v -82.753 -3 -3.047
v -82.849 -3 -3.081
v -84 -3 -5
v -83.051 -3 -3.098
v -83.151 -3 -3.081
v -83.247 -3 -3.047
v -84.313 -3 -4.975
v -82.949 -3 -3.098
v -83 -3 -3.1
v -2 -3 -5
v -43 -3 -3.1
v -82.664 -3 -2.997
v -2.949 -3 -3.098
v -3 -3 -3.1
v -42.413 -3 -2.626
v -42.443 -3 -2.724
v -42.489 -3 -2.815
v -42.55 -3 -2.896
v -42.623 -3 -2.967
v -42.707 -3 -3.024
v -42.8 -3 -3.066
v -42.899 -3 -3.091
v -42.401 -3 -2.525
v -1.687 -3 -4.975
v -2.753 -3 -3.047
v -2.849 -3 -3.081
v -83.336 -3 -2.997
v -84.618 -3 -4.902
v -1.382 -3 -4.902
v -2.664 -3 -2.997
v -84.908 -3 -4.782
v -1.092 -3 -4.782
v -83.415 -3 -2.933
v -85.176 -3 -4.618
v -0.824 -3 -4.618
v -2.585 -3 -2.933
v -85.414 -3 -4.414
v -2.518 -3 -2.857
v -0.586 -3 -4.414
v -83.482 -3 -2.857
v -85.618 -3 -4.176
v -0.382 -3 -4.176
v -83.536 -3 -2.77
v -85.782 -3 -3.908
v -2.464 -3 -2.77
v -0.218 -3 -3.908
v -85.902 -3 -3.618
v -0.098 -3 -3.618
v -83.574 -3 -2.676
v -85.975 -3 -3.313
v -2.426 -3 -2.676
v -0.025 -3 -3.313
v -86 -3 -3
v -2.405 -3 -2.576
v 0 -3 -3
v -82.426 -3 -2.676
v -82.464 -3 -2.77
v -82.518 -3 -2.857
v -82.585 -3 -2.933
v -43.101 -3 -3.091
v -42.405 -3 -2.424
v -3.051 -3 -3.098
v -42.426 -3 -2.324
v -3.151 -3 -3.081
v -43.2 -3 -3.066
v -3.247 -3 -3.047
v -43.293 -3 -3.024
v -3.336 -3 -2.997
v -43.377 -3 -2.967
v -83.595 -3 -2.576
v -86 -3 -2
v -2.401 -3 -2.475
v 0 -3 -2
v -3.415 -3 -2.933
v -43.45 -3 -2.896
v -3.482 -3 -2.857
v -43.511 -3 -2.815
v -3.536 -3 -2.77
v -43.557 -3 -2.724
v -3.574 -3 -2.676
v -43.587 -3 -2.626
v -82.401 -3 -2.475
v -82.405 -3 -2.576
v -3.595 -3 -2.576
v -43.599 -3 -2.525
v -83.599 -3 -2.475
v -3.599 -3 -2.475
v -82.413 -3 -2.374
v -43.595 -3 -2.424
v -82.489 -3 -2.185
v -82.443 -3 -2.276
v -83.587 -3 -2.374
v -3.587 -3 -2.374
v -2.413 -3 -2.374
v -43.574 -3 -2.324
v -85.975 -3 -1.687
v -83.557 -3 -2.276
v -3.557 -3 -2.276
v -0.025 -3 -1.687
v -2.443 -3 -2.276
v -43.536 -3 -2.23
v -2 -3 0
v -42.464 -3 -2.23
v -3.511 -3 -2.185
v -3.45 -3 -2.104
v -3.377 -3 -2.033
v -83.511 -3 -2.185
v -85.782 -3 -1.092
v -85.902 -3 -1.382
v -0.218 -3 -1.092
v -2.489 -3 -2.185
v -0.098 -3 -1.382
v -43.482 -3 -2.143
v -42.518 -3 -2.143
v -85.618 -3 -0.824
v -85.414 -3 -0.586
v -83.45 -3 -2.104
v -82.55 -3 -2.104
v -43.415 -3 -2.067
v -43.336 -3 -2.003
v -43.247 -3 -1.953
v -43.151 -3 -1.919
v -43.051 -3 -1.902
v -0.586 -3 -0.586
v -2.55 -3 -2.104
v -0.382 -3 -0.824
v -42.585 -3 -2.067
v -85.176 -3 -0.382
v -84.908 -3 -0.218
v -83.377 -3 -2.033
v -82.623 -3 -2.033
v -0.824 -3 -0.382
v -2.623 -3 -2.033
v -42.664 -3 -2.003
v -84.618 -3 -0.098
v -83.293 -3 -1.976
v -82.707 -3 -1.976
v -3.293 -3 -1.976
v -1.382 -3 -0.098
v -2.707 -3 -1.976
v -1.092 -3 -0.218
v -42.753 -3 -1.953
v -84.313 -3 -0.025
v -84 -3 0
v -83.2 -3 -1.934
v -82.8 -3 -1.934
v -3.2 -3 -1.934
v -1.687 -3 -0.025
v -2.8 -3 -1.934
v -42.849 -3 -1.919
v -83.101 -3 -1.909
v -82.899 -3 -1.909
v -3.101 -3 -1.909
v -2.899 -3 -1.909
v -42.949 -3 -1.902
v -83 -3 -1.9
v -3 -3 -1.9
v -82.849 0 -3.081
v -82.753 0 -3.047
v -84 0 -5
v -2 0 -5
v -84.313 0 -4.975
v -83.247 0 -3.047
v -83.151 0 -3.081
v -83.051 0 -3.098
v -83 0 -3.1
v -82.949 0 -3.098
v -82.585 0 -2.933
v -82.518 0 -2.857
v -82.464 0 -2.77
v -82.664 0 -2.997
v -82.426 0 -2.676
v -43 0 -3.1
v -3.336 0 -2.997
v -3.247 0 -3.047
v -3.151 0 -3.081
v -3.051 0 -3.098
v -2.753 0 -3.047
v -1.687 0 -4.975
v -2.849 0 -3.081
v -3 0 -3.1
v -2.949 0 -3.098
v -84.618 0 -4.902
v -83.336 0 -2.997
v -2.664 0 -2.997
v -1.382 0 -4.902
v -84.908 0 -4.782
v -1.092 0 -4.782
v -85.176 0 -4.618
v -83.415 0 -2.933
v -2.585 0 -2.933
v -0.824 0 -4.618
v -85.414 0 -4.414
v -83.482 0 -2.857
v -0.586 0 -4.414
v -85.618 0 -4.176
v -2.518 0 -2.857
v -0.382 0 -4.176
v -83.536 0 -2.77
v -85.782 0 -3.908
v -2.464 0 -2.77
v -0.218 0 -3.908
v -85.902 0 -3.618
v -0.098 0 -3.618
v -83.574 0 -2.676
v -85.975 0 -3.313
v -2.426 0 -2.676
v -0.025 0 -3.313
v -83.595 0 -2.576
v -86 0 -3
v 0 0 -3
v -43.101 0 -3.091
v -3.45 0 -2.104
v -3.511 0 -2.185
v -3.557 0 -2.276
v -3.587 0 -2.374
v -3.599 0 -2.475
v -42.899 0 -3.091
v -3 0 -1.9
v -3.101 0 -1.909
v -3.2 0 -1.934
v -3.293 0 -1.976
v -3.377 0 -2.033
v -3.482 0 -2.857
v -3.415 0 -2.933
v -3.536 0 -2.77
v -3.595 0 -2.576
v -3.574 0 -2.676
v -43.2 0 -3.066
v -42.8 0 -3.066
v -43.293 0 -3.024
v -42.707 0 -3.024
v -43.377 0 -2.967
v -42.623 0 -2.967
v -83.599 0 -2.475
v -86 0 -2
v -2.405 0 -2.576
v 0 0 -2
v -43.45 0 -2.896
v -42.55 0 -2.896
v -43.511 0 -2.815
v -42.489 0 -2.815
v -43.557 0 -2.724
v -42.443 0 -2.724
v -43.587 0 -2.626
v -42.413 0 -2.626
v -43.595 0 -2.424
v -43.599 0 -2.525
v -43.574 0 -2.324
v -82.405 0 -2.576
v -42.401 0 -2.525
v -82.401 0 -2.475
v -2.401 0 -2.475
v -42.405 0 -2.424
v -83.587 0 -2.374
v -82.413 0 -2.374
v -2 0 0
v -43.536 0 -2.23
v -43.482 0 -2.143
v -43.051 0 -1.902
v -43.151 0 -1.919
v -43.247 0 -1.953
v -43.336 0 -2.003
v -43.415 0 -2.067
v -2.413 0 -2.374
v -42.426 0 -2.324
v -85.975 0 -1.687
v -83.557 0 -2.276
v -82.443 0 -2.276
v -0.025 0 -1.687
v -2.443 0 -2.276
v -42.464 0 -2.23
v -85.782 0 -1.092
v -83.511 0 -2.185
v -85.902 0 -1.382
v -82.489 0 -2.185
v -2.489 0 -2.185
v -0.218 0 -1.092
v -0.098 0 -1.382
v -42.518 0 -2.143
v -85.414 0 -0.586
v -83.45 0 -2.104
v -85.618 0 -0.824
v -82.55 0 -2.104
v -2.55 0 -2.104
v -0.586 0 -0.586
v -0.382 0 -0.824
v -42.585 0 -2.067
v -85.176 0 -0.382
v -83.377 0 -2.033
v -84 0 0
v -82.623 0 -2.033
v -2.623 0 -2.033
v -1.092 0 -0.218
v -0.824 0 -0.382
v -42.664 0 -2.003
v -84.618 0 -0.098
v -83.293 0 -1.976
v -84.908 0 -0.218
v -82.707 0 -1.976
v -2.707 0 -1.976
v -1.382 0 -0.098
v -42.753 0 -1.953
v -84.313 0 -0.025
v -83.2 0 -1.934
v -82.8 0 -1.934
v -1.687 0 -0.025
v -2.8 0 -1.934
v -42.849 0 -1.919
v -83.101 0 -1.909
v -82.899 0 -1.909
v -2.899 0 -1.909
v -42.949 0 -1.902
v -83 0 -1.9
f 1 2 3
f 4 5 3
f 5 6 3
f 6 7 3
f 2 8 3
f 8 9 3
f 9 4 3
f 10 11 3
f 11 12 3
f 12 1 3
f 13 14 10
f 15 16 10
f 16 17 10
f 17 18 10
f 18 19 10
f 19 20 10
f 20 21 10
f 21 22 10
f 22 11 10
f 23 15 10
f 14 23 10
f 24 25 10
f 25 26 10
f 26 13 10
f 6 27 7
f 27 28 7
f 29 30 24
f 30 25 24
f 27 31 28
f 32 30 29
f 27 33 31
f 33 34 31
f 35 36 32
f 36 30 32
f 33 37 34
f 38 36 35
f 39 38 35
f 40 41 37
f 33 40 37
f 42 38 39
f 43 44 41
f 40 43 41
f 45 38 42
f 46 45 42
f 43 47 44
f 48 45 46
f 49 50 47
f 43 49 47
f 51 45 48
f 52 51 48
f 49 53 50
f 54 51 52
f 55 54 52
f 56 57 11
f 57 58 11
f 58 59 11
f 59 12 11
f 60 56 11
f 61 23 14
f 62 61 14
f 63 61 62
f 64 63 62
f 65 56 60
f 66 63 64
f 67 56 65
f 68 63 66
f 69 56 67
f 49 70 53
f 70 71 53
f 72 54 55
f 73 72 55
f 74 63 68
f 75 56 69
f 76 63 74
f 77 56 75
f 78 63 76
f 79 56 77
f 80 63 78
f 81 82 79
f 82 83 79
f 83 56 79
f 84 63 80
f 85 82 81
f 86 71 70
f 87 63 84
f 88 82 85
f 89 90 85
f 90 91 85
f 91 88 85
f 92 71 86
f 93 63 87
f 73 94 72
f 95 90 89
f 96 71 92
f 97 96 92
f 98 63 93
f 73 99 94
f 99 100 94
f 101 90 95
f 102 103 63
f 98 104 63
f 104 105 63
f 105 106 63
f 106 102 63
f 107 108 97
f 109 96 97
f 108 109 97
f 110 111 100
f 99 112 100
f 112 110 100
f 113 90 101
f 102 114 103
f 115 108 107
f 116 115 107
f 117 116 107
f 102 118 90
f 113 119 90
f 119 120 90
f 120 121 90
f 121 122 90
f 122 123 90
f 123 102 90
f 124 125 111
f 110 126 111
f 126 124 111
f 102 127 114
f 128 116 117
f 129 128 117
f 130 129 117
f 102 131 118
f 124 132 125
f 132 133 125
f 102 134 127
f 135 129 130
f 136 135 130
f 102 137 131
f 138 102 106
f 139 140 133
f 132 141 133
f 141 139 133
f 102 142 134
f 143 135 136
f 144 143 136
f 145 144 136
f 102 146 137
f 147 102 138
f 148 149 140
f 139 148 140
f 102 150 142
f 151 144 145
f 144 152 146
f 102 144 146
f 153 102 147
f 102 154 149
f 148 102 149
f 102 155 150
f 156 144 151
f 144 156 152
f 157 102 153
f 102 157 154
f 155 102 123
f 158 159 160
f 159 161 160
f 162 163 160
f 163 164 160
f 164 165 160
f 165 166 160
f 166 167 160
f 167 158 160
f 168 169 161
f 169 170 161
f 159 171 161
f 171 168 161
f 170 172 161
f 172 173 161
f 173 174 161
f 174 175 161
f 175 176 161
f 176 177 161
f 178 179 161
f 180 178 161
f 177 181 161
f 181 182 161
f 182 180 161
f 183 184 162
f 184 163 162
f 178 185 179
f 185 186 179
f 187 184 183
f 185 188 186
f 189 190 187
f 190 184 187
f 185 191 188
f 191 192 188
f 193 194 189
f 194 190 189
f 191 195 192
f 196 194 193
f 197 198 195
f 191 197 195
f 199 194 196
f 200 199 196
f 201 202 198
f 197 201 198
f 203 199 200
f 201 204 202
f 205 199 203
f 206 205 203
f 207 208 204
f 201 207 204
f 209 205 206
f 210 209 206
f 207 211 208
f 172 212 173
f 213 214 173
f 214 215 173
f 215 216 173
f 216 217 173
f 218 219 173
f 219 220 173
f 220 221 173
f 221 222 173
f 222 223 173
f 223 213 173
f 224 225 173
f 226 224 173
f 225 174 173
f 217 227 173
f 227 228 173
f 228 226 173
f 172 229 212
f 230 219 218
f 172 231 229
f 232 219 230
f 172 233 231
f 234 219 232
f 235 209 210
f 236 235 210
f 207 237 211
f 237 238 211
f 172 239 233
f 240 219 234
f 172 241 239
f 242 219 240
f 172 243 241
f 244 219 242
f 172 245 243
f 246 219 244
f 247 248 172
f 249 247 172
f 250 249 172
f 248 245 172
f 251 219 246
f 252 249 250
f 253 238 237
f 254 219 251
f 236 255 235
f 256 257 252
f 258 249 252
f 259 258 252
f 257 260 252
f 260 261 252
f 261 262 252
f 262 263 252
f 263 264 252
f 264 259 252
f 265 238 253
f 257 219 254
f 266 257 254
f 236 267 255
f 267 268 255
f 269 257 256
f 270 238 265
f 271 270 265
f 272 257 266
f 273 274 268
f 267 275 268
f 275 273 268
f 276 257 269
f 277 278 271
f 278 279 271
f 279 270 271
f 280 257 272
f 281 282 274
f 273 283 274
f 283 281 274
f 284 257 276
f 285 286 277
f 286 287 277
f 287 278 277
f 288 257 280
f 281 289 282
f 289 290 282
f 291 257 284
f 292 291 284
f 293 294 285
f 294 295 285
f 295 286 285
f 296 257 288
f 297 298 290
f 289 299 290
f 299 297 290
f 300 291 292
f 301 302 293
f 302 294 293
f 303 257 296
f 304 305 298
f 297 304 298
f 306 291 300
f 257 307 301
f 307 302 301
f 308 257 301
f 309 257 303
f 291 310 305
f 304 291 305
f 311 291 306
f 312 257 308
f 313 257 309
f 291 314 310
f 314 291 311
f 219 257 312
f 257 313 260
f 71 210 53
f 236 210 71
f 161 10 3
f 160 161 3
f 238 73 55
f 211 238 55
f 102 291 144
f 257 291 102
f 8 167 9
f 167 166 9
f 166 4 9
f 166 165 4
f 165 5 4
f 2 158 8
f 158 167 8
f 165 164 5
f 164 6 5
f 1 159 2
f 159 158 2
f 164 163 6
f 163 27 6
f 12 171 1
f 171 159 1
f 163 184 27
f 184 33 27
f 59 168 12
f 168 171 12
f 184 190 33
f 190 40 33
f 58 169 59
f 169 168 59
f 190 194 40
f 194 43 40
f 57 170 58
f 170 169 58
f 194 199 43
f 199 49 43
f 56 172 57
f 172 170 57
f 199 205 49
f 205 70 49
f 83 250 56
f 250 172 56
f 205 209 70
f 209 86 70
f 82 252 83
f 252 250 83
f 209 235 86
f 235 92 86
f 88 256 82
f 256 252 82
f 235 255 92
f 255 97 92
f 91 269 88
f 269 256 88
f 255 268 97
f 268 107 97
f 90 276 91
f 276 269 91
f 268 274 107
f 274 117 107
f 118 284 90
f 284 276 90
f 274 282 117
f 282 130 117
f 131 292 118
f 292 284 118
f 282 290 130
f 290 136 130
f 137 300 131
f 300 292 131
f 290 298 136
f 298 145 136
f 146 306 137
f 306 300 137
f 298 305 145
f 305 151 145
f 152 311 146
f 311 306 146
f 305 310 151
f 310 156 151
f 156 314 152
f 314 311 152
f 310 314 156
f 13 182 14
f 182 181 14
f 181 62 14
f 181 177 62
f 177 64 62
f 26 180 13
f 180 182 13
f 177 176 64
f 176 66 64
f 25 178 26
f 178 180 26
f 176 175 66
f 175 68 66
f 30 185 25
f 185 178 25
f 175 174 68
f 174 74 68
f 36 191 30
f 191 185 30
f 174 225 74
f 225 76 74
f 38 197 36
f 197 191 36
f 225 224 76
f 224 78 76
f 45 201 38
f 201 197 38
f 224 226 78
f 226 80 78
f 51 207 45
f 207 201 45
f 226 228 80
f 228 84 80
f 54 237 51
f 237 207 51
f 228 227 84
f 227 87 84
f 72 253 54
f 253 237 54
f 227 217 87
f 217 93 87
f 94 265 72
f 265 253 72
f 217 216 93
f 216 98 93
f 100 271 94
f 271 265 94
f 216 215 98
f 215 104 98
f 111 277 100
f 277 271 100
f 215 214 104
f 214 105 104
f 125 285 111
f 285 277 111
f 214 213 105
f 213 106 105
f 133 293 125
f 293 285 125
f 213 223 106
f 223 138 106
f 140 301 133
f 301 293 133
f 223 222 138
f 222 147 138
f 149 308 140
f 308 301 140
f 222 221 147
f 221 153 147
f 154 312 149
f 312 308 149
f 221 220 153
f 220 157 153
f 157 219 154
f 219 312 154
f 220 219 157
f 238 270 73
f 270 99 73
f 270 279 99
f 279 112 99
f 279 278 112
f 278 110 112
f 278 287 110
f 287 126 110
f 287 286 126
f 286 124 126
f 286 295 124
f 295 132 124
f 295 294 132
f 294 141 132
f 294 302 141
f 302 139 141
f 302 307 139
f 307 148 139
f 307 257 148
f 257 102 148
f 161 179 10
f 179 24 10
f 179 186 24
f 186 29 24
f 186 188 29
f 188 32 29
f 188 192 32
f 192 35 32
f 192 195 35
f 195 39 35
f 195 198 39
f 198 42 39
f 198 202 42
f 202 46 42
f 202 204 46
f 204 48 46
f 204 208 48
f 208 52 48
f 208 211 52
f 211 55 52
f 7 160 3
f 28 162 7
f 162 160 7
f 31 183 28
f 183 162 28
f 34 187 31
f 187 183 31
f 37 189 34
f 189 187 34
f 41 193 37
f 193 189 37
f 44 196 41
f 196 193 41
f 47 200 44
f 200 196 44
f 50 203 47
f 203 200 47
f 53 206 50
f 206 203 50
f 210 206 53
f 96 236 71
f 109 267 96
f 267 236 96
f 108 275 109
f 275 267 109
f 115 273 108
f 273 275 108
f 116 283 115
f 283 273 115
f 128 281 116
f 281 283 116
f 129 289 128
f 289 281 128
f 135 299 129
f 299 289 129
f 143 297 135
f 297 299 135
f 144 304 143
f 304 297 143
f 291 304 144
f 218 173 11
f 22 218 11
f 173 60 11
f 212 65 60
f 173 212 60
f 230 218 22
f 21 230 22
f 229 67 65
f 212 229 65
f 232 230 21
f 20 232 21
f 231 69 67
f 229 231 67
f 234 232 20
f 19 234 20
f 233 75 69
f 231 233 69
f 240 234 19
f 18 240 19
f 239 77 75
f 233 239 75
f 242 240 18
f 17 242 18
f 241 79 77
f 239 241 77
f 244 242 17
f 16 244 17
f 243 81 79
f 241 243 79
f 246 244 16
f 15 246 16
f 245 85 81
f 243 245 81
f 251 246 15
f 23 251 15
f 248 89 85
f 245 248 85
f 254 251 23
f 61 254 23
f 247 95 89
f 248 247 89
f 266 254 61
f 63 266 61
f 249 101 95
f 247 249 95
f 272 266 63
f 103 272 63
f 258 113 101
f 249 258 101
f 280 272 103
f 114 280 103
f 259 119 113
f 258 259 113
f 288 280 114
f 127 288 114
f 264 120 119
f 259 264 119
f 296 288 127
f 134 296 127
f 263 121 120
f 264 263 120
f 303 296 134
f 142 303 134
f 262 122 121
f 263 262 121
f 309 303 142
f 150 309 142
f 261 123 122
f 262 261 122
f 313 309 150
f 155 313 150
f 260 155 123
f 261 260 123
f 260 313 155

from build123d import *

# Parameters (mm, degrees)
SKETCH1_W           = 86
SKETCH1_H           = 5
SKETCH1_R           = 0.6
BOSS_EXTRUDE1_DEPTH = 3
FILLET1_R           = 2
CUT_EXTRUDE1_REACH  = 88.197
SKETCH3_R           = 0.6


with BuildPart() as part:
    # Sketch1 → Boss-Extrude1 (new body)
    with BuildSketch(Plane(origin=(0, 0, 0), x_dir=(-1, 0, 0), z_dir=(0, -1, 0))):
        with Locations((43, 2.5)):
            Rectangle(SKETCH1_W, SKETCH1_H)
        with Locations(Location((83, 2.5, 0), (0, 0, 90))):
            Circle(SKETCH1_R, mode=Mode.SUBTRACT)
        with Locations(Location((3, 2.5, 0), (0, 0, 90))):
            Circle(SKETCH1_R, mode=Mode.SUBTRACT)
    extrude(amount=BOSS_EXTRUDE1_DEPTH)

    # Fillet1
    fillet1_edges = [part.edges().sort_by_distance(p)[0] for p in [
        (-86, -1.5, 0),
        (0, -1.5, 0),
        (0, -1.5, -5),
        (-86, -1.5, -5),
    ]]
    fillet(fillet1_edges, radius=FILLET1_R)

    # Sketch3 → Cut-Extrude1 (cut, up to next)
    with BuildSketch(Plane.XZ.offset(3), mode=Mode.PRIVATE) as cut_extrude1_sk1:
        with Locations(Location((-43, -2.5, 0), (0, 0, 270))):
            Circle(SKETCH3_R)
    cut_extrude1_tool1 = extrude(cut_extrude1_sk1.sketch, amount=-CUT_EXTRUDE1_REACH, mode=Mode.PRIVATE) & part.part
    add(cut_extrude1_tool1.solids().sort_by_distance((-43, -3, -2.5))[0], mode=Mode.SUBTRACT)


solid = part.part
